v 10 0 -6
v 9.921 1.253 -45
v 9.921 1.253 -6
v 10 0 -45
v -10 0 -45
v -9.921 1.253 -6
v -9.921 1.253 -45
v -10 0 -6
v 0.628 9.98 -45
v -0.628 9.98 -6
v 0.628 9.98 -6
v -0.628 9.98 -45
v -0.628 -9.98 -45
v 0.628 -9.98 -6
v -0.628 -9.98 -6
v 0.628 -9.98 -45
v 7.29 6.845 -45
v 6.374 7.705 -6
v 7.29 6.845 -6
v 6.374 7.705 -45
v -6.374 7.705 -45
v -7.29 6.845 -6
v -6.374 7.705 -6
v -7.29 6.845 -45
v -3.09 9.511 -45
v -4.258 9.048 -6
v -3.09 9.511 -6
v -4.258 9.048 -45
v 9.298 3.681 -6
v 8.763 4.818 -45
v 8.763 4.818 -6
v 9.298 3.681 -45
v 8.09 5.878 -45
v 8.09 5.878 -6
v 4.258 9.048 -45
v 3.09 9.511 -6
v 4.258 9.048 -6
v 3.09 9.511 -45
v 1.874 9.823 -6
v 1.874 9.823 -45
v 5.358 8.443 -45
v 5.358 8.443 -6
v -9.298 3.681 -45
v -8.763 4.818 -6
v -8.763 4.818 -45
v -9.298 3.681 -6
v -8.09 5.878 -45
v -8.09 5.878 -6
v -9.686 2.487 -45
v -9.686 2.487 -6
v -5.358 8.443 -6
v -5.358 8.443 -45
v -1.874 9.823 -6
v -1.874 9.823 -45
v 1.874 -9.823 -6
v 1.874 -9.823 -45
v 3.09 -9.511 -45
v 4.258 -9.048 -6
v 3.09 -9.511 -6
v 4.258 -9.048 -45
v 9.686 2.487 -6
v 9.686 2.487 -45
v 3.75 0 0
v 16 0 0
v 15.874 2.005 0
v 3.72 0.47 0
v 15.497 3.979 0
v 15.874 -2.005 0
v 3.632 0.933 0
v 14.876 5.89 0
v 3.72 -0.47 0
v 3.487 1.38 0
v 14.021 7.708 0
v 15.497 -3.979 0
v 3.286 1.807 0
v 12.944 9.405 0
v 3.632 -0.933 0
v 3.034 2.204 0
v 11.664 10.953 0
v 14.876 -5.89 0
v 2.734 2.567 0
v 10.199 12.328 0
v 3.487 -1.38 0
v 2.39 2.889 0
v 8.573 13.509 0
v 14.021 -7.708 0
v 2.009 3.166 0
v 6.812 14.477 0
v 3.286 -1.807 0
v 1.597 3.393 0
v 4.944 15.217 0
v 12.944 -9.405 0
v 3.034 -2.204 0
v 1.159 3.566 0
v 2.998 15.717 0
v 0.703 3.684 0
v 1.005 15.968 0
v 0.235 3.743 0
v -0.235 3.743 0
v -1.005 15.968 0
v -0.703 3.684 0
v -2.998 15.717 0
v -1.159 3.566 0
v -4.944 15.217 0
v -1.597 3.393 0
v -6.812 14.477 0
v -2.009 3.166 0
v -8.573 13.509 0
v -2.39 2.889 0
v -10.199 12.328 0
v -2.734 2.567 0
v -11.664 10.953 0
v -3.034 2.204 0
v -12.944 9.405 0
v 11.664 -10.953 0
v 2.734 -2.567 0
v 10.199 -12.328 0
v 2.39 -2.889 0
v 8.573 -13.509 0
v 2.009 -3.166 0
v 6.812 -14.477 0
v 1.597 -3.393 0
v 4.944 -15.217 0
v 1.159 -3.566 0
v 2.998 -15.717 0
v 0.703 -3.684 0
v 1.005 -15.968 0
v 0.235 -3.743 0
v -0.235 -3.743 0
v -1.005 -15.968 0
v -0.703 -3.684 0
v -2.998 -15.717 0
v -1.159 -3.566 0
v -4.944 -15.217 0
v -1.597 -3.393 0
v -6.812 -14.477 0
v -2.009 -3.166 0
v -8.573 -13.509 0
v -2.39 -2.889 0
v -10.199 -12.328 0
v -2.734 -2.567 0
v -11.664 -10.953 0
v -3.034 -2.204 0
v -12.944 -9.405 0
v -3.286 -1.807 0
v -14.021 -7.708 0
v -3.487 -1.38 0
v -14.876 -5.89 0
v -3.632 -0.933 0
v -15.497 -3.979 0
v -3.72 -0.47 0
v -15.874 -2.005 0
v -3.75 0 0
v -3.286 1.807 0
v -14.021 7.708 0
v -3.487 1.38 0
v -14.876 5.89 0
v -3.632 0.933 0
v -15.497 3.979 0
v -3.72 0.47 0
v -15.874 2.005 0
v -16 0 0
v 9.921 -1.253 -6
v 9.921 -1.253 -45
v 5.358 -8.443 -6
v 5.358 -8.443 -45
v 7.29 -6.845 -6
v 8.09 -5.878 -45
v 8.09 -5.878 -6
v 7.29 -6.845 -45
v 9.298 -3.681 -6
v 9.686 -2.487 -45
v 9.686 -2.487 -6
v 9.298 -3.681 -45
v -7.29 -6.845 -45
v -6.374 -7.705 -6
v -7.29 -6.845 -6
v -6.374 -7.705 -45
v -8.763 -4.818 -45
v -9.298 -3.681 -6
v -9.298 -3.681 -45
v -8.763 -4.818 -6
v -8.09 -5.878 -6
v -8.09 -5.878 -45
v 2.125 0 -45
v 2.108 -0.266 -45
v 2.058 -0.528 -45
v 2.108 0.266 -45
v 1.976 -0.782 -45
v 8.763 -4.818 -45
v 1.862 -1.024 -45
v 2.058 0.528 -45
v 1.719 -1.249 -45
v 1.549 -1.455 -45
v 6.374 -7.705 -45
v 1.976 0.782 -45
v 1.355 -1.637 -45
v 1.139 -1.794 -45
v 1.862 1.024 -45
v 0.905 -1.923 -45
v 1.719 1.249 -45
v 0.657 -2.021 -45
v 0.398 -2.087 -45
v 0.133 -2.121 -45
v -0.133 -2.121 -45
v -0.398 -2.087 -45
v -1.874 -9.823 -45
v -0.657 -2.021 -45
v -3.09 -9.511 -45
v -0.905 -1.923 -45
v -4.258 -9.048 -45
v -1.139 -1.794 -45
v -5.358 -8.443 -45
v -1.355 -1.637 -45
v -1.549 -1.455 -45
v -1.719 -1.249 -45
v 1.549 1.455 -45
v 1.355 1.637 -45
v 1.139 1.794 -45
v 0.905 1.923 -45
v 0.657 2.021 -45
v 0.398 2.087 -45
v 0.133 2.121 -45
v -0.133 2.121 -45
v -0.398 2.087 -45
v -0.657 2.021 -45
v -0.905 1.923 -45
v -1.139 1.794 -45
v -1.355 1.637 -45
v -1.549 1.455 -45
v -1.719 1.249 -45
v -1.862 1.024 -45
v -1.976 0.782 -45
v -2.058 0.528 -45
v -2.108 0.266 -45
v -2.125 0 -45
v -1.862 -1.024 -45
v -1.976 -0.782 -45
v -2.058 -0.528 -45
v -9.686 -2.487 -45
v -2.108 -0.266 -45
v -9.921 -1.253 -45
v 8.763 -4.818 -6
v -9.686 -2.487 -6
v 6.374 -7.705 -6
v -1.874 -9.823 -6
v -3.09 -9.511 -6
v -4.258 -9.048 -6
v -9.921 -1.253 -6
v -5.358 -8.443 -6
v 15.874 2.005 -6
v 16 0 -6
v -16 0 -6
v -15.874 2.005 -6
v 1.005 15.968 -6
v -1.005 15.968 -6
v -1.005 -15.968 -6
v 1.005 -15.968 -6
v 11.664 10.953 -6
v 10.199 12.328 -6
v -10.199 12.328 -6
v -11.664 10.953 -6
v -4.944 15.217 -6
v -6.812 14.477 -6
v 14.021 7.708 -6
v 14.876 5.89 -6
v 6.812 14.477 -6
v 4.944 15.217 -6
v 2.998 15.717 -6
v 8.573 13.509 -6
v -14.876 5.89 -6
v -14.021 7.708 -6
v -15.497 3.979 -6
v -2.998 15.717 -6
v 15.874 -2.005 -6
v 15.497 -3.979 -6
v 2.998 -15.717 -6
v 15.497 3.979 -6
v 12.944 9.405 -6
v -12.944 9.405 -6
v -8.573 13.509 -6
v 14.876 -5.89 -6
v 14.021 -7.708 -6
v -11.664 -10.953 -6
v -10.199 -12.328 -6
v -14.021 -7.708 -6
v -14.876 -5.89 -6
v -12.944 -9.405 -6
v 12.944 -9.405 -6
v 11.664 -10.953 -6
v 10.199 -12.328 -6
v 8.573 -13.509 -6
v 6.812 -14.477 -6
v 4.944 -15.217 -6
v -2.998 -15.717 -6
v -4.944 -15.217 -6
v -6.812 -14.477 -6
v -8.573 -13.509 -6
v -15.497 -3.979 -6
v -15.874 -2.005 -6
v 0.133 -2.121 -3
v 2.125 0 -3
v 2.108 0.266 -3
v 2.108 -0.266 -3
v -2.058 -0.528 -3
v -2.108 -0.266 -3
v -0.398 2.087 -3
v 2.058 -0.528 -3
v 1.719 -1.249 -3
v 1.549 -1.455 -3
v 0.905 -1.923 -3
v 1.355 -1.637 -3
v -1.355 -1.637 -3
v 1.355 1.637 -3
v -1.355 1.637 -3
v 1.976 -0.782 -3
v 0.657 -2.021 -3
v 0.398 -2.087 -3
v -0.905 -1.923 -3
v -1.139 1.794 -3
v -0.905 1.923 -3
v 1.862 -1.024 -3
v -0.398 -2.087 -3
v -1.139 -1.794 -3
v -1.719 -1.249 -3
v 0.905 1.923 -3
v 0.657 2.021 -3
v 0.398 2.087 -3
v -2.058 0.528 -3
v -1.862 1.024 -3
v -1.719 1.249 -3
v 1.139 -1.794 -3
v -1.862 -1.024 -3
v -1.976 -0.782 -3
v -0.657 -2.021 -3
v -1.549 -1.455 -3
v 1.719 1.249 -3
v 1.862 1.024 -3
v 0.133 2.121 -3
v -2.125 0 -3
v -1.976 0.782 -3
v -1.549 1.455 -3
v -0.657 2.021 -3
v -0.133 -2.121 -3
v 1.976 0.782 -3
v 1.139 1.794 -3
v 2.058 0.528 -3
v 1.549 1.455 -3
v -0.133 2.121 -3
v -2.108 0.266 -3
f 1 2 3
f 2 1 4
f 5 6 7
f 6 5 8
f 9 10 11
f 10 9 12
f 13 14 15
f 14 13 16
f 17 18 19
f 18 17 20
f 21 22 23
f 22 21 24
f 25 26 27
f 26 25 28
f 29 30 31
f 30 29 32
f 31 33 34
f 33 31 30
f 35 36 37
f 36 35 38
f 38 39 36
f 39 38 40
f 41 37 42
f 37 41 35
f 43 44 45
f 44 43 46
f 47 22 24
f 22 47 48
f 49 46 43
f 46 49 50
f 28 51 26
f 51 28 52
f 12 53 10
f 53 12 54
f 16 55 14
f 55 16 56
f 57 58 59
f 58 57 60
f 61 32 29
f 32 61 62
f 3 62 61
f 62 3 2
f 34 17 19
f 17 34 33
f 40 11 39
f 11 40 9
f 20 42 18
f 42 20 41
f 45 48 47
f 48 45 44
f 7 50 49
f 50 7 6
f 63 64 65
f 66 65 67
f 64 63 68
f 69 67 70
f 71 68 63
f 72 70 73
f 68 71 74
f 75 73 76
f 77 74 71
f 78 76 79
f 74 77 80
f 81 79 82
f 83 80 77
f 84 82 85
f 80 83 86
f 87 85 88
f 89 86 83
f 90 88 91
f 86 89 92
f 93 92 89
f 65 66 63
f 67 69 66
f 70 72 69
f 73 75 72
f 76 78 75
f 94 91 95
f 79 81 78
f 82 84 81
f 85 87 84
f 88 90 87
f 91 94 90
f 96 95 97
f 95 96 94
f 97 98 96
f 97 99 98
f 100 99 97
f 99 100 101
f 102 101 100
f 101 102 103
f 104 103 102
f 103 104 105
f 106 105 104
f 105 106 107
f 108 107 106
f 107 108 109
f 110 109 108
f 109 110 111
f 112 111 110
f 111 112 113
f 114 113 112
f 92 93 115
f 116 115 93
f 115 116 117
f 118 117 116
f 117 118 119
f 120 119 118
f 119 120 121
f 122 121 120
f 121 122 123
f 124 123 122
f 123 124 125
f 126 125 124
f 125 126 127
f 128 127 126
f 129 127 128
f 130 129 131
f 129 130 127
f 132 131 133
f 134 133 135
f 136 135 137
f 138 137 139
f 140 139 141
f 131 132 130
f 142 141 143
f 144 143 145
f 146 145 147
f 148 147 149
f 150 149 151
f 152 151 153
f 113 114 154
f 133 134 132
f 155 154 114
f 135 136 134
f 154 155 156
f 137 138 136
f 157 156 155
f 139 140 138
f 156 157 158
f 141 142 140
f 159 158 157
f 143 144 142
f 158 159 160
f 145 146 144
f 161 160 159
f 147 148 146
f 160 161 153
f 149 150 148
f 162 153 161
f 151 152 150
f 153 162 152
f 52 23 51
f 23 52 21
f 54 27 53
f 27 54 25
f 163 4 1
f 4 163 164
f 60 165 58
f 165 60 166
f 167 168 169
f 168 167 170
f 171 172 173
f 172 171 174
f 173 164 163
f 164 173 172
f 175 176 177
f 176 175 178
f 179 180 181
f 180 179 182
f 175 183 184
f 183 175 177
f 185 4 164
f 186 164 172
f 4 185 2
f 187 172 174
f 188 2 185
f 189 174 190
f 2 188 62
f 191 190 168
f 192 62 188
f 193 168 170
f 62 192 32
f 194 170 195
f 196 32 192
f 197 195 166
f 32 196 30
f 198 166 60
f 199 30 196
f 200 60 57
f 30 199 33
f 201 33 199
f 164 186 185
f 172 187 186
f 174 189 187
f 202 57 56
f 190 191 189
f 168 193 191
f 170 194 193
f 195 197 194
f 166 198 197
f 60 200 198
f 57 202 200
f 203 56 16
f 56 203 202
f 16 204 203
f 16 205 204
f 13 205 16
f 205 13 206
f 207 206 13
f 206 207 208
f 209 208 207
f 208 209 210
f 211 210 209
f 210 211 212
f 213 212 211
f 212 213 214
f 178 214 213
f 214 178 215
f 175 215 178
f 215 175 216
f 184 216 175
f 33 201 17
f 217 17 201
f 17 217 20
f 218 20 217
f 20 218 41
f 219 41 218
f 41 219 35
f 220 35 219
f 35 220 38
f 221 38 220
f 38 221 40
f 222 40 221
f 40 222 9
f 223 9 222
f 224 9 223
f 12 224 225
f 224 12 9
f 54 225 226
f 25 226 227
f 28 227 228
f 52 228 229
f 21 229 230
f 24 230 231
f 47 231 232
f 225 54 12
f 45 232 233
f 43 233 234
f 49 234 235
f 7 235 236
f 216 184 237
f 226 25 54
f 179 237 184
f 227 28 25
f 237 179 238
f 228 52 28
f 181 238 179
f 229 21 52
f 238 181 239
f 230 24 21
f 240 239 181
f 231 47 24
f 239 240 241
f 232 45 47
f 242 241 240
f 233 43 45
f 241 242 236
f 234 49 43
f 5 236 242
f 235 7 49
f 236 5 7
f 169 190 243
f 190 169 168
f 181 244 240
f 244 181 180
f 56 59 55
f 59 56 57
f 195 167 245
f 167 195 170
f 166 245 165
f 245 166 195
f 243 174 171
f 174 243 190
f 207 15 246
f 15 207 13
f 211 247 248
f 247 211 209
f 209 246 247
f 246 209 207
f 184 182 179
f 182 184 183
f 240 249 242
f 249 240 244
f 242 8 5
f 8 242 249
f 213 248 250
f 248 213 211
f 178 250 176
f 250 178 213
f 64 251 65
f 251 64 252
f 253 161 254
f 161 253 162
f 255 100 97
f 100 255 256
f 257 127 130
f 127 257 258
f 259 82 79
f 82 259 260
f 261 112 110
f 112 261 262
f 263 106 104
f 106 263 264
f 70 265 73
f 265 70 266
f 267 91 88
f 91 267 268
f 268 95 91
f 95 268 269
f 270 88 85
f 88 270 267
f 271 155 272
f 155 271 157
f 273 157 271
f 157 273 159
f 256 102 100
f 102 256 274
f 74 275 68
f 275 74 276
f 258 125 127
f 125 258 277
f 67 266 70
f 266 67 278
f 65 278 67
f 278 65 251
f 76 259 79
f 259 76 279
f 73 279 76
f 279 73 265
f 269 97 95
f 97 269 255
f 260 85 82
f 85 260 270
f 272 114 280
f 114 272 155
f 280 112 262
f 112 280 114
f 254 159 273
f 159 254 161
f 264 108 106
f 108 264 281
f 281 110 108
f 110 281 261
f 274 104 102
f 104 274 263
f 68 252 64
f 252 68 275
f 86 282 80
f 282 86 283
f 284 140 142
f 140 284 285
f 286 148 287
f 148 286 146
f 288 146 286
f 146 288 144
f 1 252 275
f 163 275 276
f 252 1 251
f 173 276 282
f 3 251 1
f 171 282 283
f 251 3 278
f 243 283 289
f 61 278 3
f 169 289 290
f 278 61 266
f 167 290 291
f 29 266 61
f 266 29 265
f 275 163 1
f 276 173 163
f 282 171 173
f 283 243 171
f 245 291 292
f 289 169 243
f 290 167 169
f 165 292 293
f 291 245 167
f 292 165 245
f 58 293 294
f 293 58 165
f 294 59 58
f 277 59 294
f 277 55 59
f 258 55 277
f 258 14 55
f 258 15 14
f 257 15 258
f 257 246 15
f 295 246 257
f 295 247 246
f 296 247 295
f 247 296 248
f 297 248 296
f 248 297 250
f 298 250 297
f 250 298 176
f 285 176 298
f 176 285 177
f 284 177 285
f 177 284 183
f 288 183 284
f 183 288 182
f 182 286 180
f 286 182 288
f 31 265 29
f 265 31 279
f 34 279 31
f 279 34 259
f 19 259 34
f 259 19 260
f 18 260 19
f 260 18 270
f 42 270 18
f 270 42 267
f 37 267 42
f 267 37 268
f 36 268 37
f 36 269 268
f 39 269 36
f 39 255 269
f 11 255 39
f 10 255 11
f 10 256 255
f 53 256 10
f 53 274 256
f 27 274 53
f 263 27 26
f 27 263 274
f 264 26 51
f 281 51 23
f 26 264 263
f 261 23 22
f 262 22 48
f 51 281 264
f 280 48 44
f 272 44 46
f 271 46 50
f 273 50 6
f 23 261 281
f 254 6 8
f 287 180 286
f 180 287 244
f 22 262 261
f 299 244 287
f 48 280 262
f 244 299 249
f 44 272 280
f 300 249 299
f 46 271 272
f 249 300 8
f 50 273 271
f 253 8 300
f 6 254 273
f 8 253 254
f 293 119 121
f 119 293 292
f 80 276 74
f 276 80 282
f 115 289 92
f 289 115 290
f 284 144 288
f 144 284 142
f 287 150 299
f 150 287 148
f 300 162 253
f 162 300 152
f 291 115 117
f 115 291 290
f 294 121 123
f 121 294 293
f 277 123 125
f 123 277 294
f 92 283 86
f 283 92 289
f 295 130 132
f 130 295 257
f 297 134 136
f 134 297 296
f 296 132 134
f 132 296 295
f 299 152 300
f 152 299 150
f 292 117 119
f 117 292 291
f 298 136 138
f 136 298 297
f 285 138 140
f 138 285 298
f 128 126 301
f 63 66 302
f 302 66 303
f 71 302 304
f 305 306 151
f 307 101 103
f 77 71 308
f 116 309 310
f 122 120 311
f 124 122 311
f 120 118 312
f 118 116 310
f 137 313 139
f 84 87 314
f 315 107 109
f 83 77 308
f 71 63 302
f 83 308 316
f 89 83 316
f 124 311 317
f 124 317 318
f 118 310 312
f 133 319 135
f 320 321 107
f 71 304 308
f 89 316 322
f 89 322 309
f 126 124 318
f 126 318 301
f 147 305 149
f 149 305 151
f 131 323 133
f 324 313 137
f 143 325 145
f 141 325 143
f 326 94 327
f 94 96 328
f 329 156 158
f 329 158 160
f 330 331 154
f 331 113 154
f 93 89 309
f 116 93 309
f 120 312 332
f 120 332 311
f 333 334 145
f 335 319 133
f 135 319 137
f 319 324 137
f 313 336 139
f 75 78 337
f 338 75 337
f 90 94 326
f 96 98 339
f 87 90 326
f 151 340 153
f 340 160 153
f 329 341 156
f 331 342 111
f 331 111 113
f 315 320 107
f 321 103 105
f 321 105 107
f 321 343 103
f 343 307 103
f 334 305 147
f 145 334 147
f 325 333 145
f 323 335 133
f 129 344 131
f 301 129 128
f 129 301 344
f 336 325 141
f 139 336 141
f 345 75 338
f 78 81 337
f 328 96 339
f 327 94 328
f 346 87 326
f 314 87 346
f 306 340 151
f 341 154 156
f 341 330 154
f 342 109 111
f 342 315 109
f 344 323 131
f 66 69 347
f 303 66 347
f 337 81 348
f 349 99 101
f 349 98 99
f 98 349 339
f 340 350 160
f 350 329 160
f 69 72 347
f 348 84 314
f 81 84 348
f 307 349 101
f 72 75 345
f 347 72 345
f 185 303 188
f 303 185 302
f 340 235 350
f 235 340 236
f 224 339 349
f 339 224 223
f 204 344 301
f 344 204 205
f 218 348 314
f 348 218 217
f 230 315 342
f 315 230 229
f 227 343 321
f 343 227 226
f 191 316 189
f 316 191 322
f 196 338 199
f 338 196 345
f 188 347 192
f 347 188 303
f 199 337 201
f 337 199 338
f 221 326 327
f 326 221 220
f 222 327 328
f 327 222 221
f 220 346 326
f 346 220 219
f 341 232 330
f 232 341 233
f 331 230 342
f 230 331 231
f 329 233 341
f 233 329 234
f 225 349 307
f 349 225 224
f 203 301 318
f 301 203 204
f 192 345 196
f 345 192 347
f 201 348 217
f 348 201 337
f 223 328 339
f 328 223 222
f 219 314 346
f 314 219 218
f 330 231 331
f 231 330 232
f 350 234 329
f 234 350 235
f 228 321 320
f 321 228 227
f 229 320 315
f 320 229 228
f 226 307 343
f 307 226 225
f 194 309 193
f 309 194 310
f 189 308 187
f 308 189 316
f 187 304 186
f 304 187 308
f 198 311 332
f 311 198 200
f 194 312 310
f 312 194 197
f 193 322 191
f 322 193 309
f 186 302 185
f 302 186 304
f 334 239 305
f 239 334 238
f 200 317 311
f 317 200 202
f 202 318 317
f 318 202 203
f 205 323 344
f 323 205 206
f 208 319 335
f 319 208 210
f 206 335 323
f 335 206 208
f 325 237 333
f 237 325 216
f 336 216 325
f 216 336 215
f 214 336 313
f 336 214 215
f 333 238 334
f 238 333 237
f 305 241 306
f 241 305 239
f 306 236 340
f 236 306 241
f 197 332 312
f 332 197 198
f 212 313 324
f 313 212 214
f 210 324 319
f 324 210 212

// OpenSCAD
$fn = 50;


difference() {
	union() {
		translate(v = [0, 0, -45.0000000000]) {
			cylinder(h = 45, r = 10.0000000000);
		}
		translate(v = [0, 0, -6.0000000000]) {
			cylinder(h = 6, r = 16.0000000000);
		}
	}
	union() {
		translate(v = [0, 0, 0]) {
			rotate(a = [0, 0, 0]) {
				difference() {
					union() {
						#translate(v = [0, 0, -45.0000000000]) {
							cylinder(h = 45, r = 2.0000000000);
						}
						#translate(v = [0, 0, -3]) {
							cylinder(h = 3, r = 10.0000000000, r1 = 2.1250000000, r2 = 3.7500000000);
						}
						#translate(v = [0, 0, -45.0000000000]) {
							cylinder(h = 45, r = 2.1250000000);
						}
						#translate(v = [0, 0, -45.0000000000]) {
							cylinder(h = 45, r = 2.0000000000);
						}
					}
					union();
				}
			}
		}
	}
}
